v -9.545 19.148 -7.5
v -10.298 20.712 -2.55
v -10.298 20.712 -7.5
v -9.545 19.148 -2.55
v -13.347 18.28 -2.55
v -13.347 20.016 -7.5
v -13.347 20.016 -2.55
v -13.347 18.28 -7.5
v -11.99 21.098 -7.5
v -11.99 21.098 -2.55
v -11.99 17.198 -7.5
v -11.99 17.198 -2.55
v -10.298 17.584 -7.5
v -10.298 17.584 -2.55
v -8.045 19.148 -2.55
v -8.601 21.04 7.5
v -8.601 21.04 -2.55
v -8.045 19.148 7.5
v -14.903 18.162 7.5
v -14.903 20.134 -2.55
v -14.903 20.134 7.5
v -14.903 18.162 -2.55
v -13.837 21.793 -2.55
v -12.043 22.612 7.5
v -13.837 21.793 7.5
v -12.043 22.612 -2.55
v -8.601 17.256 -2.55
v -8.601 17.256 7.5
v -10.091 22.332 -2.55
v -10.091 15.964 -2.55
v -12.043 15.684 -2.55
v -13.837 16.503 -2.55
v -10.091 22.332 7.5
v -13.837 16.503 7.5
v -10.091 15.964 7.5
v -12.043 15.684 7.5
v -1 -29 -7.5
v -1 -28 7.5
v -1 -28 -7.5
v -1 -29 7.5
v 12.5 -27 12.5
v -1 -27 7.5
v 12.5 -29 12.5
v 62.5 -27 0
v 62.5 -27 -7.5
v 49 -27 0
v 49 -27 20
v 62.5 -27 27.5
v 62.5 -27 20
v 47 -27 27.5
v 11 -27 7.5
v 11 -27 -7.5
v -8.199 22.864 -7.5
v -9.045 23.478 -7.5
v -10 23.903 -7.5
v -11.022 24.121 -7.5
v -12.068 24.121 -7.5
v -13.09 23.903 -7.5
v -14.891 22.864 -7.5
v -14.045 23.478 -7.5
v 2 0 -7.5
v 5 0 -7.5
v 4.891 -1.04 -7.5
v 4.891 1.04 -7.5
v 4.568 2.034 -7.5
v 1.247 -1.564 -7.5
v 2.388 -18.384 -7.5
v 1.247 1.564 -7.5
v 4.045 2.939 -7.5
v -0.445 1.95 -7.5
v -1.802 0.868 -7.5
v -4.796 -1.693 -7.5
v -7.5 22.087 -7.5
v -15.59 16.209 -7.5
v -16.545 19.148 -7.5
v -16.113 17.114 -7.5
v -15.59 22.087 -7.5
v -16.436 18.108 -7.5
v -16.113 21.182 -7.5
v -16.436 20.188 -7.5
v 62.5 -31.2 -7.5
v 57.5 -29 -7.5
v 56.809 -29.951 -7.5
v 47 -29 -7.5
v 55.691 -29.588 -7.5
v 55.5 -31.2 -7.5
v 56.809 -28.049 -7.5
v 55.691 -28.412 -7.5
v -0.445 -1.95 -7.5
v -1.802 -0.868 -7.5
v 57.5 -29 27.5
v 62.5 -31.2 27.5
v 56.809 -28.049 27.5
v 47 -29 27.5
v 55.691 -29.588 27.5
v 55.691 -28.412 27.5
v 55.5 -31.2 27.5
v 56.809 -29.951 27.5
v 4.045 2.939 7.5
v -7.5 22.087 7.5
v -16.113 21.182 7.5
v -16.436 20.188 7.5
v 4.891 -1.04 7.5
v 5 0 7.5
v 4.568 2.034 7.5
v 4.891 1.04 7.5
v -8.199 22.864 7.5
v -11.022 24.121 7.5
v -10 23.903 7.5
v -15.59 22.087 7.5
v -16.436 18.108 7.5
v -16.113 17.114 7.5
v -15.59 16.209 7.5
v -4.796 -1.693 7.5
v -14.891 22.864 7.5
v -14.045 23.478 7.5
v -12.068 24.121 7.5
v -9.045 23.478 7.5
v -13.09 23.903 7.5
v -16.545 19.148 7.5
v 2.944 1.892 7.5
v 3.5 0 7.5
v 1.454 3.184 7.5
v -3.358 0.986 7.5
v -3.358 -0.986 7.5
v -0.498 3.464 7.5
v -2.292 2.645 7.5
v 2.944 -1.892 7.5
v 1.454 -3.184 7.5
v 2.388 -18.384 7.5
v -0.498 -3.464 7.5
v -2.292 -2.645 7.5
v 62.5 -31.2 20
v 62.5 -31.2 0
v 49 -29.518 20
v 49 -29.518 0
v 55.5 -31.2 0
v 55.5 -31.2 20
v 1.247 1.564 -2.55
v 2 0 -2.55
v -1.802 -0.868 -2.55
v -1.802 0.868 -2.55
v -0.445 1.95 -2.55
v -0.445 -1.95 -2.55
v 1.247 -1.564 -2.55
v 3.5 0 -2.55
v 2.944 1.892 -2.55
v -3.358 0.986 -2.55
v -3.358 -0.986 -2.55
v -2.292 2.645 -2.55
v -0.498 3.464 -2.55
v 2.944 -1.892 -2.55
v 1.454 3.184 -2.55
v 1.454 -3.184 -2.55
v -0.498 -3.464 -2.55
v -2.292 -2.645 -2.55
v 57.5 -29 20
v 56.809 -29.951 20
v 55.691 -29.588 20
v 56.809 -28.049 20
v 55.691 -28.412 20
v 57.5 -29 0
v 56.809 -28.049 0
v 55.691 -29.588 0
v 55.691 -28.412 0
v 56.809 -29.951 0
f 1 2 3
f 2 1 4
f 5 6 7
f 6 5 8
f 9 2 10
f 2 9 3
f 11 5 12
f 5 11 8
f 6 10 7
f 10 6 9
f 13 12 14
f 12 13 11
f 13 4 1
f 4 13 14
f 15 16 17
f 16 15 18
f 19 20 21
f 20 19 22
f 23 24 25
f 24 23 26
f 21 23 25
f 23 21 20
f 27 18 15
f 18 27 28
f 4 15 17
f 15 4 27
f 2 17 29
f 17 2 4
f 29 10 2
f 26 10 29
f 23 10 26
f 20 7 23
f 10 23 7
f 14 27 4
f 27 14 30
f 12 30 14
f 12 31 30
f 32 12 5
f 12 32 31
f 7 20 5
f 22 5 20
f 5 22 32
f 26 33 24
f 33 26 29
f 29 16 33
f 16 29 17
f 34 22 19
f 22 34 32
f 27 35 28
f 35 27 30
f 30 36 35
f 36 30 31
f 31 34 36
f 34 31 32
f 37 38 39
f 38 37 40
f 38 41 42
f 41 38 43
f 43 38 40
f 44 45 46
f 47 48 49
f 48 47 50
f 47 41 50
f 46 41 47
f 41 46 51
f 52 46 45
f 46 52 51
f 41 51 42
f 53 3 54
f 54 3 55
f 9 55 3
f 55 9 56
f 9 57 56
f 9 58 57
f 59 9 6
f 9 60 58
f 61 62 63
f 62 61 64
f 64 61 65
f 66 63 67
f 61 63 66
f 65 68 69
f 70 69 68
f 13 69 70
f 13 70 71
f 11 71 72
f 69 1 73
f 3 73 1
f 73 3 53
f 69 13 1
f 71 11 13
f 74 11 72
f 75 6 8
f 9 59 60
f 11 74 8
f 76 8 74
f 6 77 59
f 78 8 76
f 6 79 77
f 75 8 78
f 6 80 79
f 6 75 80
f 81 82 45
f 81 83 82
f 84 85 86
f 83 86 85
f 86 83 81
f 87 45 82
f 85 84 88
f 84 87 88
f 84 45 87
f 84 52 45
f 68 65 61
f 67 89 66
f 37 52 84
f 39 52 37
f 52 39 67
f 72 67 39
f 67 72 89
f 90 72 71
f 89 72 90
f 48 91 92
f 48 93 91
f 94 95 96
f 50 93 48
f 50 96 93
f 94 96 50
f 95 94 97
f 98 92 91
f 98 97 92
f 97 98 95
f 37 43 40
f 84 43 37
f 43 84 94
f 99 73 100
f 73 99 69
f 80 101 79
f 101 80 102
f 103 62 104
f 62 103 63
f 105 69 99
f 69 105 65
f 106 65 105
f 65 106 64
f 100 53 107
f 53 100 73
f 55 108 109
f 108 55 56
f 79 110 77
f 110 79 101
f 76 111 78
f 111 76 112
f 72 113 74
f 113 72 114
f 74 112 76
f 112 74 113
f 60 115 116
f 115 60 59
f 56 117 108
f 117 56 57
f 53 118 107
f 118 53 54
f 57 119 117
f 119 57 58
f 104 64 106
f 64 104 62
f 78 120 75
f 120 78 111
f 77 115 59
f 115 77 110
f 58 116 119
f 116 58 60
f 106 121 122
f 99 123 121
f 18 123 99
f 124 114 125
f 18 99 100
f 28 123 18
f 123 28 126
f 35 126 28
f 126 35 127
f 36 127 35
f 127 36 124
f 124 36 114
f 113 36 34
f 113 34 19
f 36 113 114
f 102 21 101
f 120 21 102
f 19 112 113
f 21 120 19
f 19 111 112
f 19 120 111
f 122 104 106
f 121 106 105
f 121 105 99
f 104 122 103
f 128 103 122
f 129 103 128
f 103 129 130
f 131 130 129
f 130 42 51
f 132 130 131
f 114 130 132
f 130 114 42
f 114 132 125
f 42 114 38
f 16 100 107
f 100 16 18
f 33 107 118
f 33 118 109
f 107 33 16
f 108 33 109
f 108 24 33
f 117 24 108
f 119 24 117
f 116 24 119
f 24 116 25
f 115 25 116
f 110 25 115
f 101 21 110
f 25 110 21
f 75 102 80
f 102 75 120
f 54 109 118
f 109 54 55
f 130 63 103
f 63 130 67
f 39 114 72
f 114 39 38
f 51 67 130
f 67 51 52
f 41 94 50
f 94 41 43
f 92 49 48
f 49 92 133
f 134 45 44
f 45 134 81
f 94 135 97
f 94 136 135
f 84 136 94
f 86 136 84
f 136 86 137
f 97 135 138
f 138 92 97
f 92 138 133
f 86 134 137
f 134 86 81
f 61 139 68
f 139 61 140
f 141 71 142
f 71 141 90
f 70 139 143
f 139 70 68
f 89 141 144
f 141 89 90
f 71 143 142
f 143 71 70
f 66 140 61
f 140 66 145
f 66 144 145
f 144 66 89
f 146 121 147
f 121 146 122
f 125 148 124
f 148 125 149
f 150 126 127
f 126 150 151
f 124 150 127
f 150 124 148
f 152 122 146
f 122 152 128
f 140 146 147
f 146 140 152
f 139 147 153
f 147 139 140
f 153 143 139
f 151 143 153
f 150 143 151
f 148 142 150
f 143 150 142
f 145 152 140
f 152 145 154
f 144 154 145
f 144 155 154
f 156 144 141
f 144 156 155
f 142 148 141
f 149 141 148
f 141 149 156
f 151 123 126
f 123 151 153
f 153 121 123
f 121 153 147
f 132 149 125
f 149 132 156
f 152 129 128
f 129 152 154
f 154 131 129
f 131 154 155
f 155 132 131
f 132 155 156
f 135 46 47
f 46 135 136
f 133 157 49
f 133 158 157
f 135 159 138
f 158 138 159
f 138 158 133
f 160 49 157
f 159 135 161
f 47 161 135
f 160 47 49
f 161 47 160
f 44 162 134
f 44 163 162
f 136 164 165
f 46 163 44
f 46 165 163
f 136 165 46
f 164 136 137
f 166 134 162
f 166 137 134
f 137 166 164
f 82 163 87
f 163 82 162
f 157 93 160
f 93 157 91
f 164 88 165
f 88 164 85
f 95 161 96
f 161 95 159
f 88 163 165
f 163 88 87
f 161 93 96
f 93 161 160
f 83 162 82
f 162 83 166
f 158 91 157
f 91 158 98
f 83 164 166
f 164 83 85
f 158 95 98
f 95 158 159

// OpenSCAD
//dz=19.148
//dx=-11.545

mhole2zoffset=19.148;
mhole2xoffset=-11.545;
wipearmlength = 60; //52
wipezoffset=28.0;
t=2;
w=15;
mcmsr=2;
mcms_csinkr=3.5;
csink_d=w-5;
rbrt=5;//2+0.1; 
rbhldrt=4.2;//rbrt+2.3;
rbhldrl=7;
rbrl=15;//11.5;
rbrangle=10;
rbrzoffset=rbhldrt/2;
rbryoffset2=20; //nozzle center on Z in relation to side of the
rbryoffset1=24;
rbryco=20;
cnrl=10;

difference(){
    union(){

        hull(){
            translate([0,-wipezoffset,0])
                cube([t,t,w],center=true);
            translate([wipearmlength-t/2-5,-wipezoffset,rbryoffset2])
                cube([t,t,w],center=true);

        }

        hull(){
            translate([0,0,0])
                cylinder(h=w, r=5, $fn=30,center=true);
            translate([mhole2xoffset,mhole2zoffset,0])
                cylinder(h=w, r=5, $fn=30,center=true);
        }
        hull(){
            translate([0,-wipezoffset/2,0])
                cube([t,wipezoffset,w],center=true);
            translate([0,0,0])
                cylinder(h=w, r=5, $fn=30,center=true);
        }
        
        
        hull(){
            translate([t/2+cnrl/2,-wipezoffset,0])
               cube([cnrl,t,w],center=true);
            translate([t/2-0.1,-wipezoffset+(cnrl+t)/2+0.1,0])
               cube([0.01,cnrl,w],center=true);
        }
        //arm support
        /*
         hull(){
            translate([t/2+cnrl/2,-wipezoffset,0])
               cube([cnrl,0.4,w],center=true);
            translate([wipearmlength-t/2-5,-wipezoffset,rbryoffset2/2-w/2])
                #cube([t,0.6,rbryoffset2],center=true);
        }
        //arm with support
        hull(){
            translate([t/2+cnrl/2,-wipezoffset,0])
               cube([cnrl,t,w],center=true);
            translate([wipearmlength-t/2-rbhldrl-4,-wipezoffset,rbryoffset2])
                cube([t,t,w],center=true);
        }
        */
        //arm full lenght
        hull(){
            translate([t/2+cnrl/2,-wipezoffset,0])
               cube([cnrl,t,w],center=true);
            translate([wipearmlength-t/2-rbhldrl-4,-wipezoffset,rbryoffset2/2])
                cube([t,t,w+rbryoffset2],center=true);
        }
        //rubber holder
        hull(){
            translate([wipearmlength-t/2-rbhldrl-4,-wipezoffset,rbryoffset2/2])
                cube([t,t,w+rbryoffset2],center=true);
            translate([wipearmlength-t/2,-wipezoffset-rbrzoffset+t/2,rbryoffset2/2])
                cube([rbhldrl,rbhldrt,w+rbryoffset2],center=true);
        }

    }
    //mounting holes
    cylinder(h=w+1, r=mcmsr,center=true);
    translate([0,0,(w-csink_d)/2])
        cylinder(h=csink_d+0.1, r=mcms_csinkr,center=true);
    translate([mhole2xoffset,mhole2zoffset,0]){
        cylinder(h=w+1, r=mcmsr,center=true);
        translate([0,0,(w-csink_d)/2])
            cylinder(h=csink_d+0.1, r=mcms_csinkr,center=true);
    }
    /*
    //rubber cutout
    translate([wipearmlength+rbrl/2-rbhldrl/2,-wipezoffset-rbrzoffset/2+0.75,rbryoffset2/2])
        rotate([0,0,rbrangle])
        #cube([rbrl,rbrt,w+rbryoffset2+1],center=true);
    */
        //rubber cutout type 2
    translate([wipearmlength-rbhldrl/2,-wipezoffset-rbrt/2+1.5,rbryoffset2/2])
        #cube([rbrl,rbrt,rbryco],center=true);
    //rubber holes
    translate([wipearmlength-rbhldrl/2,-wipezoffset-rbrt/2+1.5,rbryoffset2/2])
    rotate([0,0,0])
    cylinder(h=w+rbryoffset2+1, r=1 ,center=true);
}
